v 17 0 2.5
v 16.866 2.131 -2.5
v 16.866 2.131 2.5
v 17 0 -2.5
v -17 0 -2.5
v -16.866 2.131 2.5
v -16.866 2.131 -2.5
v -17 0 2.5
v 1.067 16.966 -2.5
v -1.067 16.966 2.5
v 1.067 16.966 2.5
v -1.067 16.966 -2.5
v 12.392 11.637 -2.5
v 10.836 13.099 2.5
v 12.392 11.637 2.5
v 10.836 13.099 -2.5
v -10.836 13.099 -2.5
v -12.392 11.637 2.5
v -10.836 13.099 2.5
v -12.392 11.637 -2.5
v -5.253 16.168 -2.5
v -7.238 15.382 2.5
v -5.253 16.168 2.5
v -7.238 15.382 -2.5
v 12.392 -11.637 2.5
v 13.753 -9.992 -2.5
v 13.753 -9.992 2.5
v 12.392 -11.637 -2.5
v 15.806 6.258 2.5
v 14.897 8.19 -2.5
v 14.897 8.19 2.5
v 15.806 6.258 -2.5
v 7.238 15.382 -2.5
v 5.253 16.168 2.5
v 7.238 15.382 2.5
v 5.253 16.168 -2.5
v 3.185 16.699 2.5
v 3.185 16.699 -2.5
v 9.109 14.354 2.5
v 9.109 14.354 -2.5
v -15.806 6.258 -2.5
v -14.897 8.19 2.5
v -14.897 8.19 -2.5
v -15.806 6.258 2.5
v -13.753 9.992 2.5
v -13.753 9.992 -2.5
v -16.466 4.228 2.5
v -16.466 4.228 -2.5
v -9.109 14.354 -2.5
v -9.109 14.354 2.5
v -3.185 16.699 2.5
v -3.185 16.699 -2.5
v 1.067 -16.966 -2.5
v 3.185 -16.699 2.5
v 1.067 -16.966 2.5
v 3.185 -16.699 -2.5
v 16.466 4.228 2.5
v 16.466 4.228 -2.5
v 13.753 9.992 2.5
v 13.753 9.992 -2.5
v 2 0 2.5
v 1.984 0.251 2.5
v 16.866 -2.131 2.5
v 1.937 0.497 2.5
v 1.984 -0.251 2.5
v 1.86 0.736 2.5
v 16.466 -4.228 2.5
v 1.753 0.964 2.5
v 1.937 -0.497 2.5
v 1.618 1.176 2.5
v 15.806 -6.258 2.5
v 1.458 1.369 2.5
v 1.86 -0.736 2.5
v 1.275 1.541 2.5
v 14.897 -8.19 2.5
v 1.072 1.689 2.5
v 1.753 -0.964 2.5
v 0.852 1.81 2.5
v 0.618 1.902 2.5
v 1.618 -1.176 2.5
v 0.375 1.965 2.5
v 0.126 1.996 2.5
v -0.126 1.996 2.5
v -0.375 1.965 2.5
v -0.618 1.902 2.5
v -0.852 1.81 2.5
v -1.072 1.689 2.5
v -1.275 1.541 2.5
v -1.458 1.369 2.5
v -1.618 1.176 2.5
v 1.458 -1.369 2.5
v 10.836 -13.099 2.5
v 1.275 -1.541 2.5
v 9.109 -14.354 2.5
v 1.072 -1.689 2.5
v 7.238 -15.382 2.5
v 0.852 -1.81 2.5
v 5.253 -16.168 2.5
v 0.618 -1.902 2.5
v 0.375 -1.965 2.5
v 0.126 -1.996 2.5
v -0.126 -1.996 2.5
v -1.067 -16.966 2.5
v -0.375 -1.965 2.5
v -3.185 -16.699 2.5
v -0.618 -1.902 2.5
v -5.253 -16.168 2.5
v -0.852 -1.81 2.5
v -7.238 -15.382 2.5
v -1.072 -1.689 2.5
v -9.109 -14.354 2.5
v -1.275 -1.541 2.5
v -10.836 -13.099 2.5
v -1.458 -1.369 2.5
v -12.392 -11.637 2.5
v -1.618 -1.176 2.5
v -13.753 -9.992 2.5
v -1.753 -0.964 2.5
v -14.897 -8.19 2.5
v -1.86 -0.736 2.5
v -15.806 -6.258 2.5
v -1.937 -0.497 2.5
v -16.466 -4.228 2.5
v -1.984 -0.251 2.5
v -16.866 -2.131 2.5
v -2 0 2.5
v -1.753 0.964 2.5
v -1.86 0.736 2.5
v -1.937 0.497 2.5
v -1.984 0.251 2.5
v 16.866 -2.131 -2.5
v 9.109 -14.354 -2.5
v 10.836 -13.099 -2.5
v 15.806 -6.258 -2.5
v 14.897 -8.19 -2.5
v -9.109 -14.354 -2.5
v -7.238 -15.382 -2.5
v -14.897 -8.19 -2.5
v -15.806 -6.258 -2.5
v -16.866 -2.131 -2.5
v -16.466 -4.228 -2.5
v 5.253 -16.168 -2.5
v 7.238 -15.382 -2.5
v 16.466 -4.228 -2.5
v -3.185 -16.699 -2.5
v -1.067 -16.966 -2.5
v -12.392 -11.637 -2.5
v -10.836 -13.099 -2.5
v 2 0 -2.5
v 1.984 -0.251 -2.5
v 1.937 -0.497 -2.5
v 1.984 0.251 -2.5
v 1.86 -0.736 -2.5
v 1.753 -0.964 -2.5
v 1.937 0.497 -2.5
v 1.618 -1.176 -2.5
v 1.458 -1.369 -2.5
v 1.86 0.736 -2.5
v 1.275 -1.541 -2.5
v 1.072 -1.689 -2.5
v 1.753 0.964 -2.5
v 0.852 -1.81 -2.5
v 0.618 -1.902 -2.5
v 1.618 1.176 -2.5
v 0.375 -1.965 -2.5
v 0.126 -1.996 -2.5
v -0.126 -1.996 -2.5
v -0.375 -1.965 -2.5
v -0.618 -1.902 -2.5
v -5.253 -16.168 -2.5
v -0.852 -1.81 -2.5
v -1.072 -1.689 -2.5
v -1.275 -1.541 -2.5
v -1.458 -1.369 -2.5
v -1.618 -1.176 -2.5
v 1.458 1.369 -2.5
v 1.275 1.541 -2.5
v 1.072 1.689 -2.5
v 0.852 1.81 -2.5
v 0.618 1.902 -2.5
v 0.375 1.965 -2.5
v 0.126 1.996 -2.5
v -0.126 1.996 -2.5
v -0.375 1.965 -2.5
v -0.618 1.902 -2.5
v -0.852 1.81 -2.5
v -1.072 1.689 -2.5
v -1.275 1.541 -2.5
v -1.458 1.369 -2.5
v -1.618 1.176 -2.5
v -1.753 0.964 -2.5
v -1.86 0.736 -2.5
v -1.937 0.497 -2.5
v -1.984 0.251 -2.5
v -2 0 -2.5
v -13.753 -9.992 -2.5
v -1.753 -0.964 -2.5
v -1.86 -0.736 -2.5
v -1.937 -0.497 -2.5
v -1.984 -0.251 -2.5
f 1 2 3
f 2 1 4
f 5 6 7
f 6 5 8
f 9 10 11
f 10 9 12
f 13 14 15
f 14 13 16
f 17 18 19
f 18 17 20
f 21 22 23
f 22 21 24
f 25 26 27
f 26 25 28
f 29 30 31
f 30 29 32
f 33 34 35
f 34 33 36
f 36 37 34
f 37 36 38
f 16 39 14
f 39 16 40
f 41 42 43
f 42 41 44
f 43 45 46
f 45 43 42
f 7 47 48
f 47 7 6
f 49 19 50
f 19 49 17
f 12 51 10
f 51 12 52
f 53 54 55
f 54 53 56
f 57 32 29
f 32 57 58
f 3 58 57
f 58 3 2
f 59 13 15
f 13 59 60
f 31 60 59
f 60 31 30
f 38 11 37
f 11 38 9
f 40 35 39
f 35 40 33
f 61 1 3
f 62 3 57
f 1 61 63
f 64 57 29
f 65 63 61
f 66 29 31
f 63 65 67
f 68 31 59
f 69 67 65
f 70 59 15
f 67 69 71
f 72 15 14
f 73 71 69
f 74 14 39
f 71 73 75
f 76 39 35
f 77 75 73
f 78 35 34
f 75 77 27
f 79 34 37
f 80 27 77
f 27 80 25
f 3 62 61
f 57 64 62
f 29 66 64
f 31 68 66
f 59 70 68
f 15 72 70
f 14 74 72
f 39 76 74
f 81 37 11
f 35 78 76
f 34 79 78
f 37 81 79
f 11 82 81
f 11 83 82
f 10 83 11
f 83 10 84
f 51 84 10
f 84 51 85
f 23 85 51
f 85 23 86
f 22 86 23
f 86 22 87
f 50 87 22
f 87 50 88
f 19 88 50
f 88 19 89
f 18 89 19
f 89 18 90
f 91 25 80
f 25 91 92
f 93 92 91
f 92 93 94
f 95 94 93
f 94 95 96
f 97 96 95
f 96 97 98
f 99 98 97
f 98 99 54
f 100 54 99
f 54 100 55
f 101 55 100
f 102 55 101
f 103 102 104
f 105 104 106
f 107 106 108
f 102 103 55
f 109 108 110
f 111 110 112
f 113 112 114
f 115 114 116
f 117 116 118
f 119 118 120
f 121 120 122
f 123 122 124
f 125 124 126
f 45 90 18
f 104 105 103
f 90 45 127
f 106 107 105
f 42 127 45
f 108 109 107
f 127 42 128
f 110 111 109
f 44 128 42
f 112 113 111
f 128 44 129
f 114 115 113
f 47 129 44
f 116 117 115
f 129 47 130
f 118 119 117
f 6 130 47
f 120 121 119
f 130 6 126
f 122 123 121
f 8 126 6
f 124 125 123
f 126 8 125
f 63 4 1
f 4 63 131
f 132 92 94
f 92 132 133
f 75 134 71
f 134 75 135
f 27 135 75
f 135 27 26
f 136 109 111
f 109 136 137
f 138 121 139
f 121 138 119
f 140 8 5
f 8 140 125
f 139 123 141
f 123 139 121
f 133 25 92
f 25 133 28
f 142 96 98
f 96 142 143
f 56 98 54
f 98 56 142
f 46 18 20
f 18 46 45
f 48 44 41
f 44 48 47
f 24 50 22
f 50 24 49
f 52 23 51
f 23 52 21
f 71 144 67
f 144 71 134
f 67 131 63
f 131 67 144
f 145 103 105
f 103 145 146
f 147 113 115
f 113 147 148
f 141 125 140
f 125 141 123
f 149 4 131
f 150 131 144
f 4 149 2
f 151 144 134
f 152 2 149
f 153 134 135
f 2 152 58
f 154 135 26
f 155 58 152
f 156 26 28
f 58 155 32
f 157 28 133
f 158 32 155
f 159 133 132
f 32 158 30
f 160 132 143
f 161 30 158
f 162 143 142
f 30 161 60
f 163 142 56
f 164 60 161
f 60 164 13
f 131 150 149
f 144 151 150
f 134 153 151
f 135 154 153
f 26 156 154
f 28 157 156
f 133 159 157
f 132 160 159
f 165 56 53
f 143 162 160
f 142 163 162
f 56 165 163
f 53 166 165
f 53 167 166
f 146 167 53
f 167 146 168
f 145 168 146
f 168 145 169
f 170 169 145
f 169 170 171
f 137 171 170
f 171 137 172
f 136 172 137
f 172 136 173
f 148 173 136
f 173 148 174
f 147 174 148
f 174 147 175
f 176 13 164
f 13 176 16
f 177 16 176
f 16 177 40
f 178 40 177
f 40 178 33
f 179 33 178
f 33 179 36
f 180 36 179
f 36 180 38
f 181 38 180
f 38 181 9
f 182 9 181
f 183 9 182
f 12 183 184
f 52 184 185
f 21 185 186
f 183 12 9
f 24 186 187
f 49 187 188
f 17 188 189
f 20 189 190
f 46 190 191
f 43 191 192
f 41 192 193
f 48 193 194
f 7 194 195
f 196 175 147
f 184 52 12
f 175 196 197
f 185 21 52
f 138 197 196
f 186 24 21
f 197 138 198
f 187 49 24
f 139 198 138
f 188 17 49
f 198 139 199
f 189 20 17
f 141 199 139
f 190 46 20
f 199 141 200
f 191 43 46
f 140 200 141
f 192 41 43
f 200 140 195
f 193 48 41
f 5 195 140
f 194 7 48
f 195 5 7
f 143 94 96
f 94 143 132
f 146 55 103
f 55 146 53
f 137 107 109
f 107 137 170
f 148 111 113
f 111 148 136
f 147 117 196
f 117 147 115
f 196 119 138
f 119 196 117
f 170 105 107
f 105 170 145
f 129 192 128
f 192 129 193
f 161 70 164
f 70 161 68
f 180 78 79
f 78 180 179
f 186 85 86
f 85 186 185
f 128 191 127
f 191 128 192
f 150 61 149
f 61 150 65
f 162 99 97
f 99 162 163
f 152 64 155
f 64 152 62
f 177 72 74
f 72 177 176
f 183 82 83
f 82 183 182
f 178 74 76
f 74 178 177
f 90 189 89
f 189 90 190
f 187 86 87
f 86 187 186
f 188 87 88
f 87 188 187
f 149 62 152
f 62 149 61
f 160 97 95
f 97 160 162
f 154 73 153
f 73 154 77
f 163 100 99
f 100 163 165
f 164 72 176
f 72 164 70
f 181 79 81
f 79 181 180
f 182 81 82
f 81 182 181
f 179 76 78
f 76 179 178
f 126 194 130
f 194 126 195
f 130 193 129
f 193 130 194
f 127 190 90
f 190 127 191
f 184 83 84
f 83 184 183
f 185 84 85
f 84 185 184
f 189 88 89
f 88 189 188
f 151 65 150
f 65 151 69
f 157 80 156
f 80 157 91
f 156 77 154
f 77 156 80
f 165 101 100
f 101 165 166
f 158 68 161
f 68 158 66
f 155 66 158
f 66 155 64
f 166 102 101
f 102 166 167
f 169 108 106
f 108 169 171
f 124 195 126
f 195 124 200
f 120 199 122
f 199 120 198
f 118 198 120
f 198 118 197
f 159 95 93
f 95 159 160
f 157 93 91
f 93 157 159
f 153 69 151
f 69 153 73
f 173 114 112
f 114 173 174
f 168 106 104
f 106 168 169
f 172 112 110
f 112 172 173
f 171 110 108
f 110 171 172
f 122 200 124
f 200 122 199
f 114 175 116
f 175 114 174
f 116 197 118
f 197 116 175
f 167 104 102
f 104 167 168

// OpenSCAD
$fn = 50;


difference() {
	union() {
		translate(v = [0, 0, -2.5000000000]) {
			cylinder(h = 5, r = 17.0000000000);
		}
	}
	union() {
		translate(v = [0, 0, -100.0000000000]) {
			cylinder(h = 200, r = 2.0000000000);
		}
	}
}
